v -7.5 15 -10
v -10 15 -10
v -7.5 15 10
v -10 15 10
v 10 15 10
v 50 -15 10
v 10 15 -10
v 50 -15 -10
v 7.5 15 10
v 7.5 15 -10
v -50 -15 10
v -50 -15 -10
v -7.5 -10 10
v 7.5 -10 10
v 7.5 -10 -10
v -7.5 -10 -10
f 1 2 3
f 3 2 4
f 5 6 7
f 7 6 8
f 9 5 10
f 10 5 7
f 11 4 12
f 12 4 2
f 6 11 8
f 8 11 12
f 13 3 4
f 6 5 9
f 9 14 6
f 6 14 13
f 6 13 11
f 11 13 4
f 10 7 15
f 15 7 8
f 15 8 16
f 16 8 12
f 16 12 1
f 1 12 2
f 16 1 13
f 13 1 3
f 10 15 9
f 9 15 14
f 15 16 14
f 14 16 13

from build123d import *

# Parameters (mm, degrees)
SALIENTE_EXTRUIR1_DEPTH = 10
CROQUIS3_W              = 15
CROQUIS3_H              = 25
CORTAR_EXTRUIR1_DEPTH   = 20


with BuildPart() as part:
    # Croquis2 → Saliente-Extruir1 (new body, symmetric)
    with BuildSketch(Plane.XY):
        Polygon((-10, 15), (-50, -15), (-10, -15), (10, -15), (50, -15), (10, 15), align=None)
    extrude(amount=SALIENTE_EXTRUIR1_DEPTH, both=True)

    # Croquis3 → Cortar-Extruir1 (cut)
    with BuildSketch(Plane.XY.offset(10)):
        with Locations((0, 2.5)):
            Rectangle(CROQUIS3_W, CROQUIS3_H)
    extrude(amount=-CORTAR_EXTRUIR1_DEPTH, mode=Mode.SUBTRACT)


solid = part.part
